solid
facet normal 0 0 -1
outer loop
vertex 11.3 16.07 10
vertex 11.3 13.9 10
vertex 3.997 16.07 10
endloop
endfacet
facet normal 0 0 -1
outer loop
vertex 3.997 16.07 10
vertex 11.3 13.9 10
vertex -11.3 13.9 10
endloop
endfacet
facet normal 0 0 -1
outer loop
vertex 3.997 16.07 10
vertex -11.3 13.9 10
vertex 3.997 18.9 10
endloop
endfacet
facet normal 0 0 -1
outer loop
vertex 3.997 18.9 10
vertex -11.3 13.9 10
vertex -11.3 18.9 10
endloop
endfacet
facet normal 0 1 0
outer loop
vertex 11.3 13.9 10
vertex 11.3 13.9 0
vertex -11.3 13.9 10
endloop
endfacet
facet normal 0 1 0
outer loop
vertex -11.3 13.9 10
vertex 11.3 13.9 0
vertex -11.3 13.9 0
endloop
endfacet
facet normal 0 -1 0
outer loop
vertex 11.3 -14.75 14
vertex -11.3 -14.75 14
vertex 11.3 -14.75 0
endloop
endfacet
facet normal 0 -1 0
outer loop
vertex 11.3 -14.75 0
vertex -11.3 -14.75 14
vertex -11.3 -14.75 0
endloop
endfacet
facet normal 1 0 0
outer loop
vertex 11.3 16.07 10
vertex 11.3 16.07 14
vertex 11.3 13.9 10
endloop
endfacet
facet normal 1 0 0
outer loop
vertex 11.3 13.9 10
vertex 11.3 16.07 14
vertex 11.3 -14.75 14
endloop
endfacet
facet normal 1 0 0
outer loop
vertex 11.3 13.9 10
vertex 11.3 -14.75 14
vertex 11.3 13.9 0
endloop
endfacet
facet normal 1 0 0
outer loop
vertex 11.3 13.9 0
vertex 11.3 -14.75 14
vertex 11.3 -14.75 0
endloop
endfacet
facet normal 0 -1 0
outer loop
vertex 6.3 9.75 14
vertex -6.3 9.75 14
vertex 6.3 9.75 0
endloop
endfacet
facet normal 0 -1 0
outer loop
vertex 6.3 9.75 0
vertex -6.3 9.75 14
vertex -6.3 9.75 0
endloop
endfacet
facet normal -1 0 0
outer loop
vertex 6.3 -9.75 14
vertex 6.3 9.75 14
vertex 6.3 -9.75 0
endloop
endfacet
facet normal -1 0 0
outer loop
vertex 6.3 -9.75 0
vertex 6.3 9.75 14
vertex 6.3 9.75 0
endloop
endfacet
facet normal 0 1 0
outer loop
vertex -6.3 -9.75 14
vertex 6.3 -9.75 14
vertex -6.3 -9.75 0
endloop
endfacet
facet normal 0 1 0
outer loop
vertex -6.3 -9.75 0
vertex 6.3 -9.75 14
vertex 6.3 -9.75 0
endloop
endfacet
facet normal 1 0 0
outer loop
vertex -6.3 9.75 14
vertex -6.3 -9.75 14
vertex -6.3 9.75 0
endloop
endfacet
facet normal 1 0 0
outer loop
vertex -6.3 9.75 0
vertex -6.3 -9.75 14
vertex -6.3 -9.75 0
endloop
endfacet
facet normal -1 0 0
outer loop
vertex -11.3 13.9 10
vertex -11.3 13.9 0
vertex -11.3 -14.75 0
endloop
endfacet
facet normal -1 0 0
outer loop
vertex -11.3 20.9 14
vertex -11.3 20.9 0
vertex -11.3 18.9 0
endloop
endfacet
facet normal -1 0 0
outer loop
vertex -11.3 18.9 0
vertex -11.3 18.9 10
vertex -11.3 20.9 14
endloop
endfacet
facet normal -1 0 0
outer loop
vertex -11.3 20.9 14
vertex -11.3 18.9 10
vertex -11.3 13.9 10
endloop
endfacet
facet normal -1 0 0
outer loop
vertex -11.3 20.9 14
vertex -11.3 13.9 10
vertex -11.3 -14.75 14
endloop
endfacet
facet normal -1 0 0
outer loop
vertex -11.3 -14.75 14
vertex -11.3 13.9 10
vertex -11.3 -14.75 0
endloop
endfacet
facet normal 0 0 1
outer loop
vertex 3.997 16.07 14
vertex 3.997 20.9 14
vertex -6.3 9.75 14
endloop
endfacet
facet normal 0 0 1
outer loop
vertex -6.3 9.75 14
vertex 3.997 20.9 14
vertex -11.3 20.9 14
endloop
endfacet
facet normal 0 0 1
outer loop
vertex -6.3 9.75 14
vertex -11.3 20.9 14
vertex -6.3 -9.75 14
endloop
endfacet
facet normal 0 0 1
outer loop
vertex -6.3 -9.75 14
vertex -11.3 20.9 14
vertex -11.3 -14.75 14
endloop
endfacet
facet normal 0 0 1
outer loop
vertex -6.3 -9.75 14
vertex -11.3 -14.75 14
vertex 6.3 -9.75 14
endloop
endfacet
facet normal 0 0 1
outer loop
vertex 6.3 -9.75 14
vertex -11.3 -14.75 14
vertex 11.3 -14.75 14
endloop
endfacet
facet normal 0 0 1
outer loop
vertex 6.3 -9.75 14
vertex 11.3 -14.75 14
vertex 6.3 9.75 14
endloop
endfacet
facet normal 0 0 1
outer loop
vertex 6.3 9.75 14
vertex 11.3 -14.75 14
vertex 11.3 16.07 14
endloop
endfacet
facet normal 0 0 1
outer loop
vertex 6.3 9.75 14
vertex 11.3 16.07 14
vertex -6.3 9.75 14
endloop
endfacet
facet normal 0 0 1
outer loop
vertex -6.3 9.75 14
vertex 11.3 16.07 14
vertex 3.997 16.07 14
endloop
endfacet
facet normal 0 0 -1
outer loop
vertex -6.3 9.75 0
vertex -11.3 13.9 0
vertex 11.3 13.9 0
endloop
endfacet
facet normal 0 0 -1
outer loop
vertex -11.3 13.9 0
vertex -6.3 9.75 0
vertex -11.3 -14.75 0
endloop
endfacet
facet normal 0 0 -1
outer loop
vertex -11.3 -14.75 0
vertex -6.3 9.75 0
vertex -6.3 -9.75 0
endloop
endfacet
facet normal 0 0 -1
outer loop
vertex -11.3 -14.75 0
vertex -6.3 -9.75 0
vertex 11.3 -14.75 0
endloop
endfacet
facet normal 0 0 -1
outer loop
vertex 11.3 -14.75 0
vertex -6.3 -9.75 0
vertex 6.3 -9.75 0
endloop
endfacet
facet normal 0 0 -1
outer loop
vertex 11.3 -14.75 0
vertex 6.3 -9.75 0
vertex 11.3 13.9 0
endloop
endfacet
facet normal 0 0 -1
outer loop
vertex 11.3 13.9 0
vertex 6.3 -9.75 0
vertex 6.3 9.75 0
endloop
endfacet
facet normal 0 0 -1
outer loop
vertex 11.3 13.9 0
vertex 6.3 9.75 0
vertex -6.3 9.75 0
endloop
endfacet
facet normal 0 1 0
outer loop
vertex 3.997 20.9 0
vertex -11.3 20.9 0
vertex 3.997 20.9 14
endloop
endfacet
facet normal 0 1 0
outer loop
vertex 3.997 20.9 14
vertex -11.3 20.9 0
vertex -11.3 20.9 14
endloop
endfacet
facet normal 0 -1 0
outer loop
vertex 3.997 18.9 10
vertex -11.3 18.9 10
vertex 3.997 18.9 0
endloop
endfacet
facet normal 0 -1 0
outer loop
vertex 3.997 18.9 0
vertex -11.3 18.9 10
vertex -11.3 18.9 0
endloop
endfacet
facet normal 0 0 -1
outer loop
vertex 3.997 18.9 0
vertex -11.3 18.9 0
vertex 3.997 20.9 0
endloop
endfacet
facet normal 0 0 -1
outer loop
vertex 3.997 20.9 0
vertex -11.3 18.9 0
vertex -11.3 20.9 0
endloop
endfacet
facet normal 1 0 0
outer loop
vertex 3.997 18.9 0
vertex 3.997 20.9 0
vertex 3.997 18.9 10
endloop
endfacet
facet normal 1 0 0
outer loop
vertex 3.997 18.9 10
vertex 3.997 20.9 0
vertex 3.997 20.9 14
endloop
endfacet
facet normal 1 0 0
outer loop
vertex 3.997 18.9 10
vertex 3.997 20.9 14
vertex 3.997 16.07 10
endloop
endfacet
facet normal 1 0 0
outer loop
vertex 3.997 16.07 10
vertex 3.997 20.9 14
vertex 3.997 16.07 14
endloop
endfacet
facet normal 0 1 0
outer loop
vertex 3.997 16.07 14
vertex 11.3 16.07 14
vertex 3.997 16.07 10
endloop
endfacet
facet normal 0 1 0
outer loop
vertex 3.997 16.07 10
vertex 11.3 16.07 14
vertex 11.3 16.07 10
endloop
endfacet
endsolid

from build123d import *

# Parameters (mm, degrees)
SKETCH1_W           = 22.6
SKETCH1_H           = 28.65
SKETCH1_W_2         = 12.6
SKETCH1_H_2         = 19.5
BOSS_EXTRUDE1_DEPTH = 14
SKETCH3_W           = 22.6
SKETCH3_H           = 7
BOSS_EXTRUDE2_DEPTH = 4
SKETCH4_W           = 22.6
SKETCH4_H           = 2
BOSS_EXTRUDE3_DEPTH = 10
SKETCH5_W           = 25.687080714
SKETCH5_H           = 15.752193048
CUT_EXTRUDE1_DEPTH  = 28.577164466


with BuildPart() as part:
    # Sketch1 → Boss-Extrude1 (new body)
    with BuildSketch(Plane.XY):
        with Locations((0, -0.425)):
            Rectangle(SKETCH1_W, SKETCH1_H)
        Rectangle(SKETCH1_W_2, SKETCH1_H_2, mode=Mode.SUBTRACT)
    extrude(amount=BOSS_EXTRUDE1_DEPTH)

    # Sketch3 → Boss-Extrude2 (add)
    with BuildSketch(Plane.XY.offset(10)):
        with Locations((0, 17.4)):
            Rectangle(SKETCH3_W, SKETCH3_H)
    extrude(amount=BOSS_EXTRUDE2_DEPTH)

    # Sketch4 → Boss-Extrude3 (add)
    with BuildSketch(Plane(origin=(0, 0, 10), x_dir=(-1, 0, 0), z_dir=(0, 0, -1))):
        with Locations((0, 19.9)):
            Rectangle(SKETCH4_W, SKETCH4_H)
    extrude(amount=BOSS_EXTRUDE3_DEPTH)

    # Sketch5 → Cut-Extrude1 (cut, through all)
    with BuildSketch(Plane.XY.offset(14)):
        with Locations((16.840510888, 23.946149684)):
            Rectangle(SKETCH5_W, SKETCH5_H)
    extrude(amount=-CUT_EXTRUDE1_DEPTH, mode=Mode.SUBTRACT)


solid = part.part
